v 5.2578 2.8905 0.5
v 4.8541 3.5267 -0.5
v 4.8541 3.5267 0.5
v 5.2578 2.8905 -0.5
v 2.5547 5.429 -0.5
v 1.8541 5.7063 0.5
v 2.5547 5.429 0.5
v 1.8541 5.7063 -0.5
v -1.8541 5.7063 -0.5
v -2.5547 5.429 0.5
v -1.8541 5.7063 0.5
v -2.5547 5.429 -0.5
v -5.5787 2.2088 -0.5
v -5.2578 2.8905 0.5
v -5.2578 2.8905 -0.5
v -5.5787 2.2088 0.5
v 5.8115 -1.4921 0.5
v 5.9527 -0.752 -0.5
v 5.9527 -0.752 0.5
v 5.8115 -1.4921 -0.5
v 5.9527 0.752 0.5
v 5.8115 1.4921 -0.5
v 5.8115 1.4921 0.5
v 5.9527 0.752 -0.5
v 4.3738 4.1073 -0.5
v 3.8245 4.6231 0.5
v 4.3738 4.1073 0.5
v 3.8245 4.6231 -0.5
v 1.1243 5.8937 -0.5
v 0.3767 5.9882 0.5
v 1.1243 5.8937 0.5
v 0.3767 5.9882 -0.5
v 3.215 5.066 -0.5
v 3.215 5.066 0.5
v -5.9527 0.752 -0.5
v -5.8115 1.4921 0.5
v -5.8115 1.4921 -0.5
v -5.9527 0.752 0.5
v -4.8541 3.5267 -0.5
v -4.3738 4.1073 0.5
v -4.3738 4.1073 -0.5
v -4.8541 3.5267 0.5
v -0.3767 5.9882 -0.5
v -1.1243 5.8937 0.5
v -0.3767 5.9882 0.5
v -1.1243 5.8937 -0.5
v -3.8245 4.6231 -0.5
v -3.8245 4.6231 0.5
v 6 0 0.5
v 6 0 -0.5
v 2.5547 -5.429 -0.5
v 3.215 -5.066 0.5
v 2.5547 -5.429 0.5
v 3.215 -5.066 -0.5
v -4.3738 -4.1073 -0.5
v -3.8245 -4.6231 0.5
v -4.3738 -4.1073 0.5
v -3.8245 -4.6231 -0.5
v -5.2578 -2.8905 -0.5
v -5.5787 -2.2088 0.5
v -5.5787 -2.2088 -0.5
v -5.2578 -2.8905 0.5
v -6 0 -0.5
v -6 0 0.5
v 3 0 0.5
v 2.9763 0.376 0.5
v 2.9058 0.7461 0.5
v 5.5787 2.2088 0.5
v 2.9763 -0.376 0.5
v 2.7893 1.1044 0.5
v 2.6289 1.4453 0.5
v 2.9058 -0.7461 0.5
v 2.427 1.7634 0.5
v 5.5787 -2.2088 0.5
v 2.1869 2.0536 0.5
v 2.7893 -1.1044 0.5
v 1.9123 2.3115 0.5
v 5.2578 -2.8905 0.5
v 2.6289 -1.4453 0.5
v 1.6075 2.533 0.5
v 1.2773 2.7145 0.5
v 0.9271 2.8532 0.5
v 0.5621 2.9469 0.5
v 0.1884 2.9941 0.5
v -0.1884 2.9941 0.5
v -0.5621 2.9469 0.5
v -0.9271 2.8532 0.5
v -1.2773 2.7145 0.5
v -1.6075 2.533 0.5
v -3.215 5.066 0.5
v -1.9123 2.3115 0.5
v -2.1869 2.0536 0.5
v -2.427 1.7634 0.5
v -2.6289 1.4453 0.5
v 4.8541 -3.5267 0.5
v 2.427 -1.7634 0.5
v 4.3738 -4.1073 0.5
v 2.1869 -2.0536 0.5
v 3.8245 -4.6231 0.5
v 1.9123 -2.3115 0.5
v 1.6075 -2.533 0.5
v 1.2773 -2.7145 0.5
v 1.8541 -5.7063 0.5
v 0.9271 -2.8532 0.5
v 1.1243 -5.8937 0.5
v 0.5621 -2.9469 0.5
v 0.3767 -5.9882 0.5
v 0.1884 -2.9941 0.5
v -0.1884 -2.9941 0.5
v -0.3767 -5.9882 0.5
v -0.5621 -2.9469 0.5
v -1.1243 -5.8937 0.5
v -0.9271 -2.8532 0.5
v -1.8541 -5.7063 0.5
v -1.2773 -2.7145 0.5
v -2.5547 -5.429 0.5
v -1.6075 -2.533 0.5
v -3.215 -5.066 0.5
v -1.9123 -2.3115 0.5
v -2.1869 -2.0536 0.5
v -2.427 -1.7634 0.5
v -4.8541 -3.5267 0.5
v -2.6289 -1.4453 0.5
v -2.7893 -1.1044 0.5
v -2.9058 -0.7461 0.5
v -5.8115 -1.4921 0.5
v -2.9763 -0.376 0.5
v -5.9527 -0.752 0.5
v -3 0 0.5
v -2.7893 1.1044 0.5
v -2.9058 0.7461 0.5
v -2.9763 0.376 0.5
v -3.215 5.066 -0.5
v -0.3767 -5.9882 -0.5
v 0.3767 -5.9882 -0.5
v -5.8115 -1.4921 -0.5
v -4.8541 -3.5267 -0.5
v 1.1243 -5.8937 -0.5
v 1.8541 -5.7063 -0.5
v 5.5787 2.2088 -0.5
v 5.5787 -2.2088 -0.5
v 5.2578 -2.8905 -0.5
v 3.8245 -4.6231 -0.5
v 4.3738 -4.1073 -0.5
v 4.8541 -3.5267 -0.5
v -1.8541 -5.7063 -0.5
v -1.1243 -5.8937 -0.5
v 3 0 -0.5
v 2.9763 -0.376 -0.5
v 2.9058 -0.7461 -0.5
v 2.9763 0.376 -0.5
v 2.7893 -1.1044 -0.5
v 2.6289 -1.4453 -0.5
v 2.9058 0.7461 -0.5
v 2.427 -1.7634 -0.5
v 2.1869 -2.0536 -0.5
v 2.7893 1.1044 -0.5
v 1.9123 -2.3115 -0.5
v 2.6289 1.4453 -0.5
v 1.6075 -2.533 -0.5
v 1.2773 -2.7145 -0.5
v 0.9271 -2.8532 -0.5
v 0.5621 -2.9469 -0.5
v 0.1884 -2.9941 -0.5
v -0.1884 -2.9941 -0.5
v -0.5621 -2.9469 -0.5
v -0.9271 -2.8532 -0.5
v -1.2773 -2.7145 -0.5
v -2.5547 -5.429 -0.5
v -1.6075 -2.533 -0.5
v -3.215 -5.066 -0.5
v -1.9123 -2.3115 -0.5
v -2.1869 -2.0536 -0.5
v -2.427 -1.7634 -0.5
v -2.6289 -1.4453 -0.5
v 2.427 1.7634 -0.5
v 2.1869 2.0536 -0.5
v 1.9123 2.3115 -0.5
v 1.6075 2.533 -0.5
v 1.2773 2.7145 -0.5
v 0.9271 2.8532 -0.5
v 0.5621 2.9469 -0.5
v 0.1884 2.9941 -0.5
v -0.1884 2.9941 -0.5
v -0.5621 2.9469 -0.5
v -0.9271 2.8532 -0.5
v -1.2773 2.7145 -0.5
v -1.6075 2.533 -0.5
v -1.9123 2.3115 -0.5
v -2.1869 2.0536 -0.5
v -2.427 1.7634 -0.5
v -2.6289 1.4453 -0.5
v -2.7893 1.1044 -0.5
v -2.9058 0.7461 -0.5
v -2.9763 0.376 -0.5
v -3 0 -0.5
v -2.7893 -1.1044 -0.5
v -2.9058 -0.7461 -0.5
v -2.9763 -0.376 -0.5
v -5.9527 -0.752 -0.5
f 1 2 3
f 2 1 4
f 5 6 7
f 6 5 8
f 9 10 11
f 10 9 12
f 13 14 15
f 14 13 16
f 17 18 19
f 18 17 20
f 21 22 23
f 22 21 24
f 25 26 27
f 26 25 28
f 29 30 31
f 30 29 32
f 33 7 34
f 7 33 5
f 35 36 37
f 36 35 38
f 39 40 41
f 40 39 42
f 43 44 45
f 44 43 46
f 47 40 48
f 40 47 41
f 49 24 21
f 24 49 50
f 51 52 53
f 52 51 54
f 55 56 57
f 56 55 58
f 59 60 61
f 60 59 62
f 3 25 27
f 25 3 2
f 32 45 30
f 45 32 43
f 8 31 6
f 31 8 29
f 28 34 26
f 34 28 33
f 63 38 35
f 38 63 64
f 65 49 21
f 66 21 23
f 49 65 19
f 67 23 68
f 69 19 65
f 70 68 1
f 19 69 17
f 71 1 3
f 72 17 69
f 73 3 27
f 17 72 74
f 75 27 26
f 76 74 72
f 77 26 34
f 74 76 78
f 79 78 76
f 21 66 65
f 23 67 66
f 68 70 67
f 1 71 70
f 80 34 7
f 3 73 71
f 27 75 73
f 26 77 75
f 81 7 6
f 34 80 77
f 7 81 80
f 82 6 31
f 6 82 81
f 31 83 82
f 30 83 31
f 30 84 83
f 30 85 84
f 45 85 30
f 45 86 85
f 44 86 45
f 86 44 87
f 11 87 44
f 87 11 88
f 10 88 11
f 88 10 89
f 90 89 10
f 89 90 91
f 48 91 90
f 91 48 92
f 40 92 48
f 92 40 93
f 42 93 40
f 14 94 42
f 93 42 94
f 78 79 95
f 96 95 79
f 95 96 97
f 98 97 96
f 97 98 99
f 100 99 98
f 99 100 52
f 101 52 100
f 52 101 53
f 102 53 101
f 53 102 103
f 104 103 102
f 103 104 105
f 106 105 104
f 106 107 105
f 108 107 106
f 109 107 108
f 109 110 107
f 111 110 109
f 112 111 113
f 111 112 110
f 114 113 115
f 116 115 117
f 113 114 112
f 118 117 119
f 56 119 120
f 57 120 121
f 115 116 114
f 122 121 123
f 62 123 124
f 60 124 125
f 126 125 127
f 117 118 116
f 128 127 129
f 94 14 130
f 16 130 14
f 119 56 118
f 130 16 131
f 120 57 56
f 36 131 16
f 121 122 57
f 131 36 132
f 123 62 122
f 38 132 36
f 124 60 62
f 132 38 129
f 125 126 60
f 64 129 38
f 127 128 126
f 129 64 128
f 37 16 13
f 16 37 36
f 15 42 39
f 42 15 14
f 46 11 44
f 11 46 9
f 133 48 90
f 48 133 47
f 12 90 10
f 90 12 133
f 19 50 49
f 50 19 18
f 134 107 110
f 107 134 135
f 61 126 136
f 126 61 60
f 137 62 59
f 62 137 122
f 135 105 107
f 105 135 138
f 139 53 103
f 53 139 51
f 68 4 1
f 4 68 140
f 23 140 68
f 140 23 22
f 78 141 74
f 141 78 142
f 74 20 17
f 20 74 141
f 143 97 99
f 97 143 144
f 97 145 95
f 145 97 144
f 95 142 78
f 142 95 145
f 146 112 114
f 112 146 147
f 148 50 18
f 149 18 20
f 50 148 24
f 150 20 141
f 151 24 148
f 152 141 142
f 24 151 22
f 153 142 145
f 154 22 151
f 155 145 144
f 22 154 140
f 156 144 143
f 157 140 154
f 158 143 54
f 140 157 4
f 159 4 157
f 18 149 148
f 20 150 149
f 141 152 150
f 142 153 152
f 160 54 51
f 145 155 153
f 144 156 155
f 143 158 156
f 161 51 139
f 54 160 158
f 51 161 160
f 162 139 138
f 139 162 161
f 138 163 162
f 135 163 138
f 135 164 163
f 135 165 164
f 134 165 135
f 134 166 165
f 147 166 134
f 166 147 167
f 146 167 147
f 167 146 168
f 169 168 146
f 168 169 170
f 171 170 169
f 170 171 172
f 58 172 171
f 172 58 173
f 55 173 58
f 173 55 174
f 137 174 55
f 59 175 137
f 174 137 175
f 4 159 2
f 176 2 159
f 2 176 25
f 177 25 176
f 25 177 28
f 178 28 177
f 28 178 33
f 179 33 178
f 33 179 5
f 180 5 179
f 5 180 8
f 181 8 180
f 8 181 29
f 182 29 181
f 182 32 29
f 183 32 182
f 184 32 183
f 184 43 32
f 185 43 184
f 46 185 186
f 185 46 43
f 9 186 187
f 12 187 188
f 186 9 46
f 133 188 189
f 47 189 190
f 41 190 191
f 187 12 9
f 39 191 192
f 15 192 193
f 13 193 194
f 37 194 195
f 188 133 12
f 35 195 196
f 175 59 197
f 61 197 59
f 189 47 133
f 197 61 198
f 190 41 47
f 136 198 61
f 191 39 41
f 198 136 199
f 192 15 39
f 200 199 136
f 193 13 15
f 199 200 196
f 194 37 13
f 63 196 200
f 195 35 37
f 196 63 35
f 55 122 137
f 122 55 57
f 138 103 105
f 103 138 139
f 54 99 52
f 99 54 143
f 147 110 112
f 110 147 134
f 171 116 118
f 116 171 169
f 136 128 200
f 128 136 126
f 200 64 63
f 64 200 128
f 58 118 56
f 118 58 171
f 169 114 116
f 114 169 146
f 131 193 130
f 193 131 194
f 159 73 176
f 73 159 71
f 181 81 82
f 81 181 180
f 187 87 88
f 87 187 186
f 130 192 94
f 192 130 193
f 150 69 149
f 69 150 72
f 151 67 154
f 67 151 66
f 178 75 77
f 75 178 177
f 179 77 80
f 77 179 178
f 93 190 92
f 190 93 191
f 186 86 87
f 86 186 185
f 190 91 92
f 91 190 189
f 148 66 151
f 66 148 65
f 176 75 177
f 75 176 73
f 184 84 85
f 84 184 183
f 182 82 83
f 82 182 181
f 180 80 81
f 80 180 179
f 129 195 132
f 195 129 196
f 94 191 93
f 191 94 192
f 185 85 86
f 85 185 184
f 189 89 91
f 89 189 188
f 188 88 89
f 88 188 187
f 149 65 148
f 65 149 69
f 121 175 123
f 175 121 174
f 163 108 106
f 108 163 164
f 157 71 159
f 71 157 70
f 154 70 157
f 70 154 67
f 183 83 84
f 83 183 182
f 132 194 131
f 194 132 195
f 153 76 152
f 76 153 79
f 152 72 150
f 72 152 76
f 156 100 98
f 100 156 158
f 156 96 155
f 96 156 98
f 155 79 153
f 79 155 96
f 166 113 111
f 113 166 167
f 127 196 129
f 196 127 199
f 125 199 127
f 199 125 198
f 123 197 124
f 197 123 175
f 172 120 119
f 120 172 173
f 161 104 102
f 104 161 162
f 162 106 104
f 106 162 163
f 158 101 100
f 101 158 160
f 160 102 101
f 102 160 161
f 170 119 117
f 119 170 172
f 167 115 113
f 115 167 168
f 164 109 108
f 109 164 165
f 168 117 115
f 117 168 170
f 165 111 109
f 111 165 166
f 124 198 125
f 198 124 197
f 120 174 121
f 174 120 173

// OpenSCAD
$fn = 50;


difference() {
	union() {
		translate(v = [0, 0, -0.5000000000]) {
			cylinder(h = 1, r = 6.0000000000);
		}
	}
	union() {
		translate(v = [0, 0, -100.0000000000]) {
			cylinder(h = 200, r = 3);
		}
	}
}
